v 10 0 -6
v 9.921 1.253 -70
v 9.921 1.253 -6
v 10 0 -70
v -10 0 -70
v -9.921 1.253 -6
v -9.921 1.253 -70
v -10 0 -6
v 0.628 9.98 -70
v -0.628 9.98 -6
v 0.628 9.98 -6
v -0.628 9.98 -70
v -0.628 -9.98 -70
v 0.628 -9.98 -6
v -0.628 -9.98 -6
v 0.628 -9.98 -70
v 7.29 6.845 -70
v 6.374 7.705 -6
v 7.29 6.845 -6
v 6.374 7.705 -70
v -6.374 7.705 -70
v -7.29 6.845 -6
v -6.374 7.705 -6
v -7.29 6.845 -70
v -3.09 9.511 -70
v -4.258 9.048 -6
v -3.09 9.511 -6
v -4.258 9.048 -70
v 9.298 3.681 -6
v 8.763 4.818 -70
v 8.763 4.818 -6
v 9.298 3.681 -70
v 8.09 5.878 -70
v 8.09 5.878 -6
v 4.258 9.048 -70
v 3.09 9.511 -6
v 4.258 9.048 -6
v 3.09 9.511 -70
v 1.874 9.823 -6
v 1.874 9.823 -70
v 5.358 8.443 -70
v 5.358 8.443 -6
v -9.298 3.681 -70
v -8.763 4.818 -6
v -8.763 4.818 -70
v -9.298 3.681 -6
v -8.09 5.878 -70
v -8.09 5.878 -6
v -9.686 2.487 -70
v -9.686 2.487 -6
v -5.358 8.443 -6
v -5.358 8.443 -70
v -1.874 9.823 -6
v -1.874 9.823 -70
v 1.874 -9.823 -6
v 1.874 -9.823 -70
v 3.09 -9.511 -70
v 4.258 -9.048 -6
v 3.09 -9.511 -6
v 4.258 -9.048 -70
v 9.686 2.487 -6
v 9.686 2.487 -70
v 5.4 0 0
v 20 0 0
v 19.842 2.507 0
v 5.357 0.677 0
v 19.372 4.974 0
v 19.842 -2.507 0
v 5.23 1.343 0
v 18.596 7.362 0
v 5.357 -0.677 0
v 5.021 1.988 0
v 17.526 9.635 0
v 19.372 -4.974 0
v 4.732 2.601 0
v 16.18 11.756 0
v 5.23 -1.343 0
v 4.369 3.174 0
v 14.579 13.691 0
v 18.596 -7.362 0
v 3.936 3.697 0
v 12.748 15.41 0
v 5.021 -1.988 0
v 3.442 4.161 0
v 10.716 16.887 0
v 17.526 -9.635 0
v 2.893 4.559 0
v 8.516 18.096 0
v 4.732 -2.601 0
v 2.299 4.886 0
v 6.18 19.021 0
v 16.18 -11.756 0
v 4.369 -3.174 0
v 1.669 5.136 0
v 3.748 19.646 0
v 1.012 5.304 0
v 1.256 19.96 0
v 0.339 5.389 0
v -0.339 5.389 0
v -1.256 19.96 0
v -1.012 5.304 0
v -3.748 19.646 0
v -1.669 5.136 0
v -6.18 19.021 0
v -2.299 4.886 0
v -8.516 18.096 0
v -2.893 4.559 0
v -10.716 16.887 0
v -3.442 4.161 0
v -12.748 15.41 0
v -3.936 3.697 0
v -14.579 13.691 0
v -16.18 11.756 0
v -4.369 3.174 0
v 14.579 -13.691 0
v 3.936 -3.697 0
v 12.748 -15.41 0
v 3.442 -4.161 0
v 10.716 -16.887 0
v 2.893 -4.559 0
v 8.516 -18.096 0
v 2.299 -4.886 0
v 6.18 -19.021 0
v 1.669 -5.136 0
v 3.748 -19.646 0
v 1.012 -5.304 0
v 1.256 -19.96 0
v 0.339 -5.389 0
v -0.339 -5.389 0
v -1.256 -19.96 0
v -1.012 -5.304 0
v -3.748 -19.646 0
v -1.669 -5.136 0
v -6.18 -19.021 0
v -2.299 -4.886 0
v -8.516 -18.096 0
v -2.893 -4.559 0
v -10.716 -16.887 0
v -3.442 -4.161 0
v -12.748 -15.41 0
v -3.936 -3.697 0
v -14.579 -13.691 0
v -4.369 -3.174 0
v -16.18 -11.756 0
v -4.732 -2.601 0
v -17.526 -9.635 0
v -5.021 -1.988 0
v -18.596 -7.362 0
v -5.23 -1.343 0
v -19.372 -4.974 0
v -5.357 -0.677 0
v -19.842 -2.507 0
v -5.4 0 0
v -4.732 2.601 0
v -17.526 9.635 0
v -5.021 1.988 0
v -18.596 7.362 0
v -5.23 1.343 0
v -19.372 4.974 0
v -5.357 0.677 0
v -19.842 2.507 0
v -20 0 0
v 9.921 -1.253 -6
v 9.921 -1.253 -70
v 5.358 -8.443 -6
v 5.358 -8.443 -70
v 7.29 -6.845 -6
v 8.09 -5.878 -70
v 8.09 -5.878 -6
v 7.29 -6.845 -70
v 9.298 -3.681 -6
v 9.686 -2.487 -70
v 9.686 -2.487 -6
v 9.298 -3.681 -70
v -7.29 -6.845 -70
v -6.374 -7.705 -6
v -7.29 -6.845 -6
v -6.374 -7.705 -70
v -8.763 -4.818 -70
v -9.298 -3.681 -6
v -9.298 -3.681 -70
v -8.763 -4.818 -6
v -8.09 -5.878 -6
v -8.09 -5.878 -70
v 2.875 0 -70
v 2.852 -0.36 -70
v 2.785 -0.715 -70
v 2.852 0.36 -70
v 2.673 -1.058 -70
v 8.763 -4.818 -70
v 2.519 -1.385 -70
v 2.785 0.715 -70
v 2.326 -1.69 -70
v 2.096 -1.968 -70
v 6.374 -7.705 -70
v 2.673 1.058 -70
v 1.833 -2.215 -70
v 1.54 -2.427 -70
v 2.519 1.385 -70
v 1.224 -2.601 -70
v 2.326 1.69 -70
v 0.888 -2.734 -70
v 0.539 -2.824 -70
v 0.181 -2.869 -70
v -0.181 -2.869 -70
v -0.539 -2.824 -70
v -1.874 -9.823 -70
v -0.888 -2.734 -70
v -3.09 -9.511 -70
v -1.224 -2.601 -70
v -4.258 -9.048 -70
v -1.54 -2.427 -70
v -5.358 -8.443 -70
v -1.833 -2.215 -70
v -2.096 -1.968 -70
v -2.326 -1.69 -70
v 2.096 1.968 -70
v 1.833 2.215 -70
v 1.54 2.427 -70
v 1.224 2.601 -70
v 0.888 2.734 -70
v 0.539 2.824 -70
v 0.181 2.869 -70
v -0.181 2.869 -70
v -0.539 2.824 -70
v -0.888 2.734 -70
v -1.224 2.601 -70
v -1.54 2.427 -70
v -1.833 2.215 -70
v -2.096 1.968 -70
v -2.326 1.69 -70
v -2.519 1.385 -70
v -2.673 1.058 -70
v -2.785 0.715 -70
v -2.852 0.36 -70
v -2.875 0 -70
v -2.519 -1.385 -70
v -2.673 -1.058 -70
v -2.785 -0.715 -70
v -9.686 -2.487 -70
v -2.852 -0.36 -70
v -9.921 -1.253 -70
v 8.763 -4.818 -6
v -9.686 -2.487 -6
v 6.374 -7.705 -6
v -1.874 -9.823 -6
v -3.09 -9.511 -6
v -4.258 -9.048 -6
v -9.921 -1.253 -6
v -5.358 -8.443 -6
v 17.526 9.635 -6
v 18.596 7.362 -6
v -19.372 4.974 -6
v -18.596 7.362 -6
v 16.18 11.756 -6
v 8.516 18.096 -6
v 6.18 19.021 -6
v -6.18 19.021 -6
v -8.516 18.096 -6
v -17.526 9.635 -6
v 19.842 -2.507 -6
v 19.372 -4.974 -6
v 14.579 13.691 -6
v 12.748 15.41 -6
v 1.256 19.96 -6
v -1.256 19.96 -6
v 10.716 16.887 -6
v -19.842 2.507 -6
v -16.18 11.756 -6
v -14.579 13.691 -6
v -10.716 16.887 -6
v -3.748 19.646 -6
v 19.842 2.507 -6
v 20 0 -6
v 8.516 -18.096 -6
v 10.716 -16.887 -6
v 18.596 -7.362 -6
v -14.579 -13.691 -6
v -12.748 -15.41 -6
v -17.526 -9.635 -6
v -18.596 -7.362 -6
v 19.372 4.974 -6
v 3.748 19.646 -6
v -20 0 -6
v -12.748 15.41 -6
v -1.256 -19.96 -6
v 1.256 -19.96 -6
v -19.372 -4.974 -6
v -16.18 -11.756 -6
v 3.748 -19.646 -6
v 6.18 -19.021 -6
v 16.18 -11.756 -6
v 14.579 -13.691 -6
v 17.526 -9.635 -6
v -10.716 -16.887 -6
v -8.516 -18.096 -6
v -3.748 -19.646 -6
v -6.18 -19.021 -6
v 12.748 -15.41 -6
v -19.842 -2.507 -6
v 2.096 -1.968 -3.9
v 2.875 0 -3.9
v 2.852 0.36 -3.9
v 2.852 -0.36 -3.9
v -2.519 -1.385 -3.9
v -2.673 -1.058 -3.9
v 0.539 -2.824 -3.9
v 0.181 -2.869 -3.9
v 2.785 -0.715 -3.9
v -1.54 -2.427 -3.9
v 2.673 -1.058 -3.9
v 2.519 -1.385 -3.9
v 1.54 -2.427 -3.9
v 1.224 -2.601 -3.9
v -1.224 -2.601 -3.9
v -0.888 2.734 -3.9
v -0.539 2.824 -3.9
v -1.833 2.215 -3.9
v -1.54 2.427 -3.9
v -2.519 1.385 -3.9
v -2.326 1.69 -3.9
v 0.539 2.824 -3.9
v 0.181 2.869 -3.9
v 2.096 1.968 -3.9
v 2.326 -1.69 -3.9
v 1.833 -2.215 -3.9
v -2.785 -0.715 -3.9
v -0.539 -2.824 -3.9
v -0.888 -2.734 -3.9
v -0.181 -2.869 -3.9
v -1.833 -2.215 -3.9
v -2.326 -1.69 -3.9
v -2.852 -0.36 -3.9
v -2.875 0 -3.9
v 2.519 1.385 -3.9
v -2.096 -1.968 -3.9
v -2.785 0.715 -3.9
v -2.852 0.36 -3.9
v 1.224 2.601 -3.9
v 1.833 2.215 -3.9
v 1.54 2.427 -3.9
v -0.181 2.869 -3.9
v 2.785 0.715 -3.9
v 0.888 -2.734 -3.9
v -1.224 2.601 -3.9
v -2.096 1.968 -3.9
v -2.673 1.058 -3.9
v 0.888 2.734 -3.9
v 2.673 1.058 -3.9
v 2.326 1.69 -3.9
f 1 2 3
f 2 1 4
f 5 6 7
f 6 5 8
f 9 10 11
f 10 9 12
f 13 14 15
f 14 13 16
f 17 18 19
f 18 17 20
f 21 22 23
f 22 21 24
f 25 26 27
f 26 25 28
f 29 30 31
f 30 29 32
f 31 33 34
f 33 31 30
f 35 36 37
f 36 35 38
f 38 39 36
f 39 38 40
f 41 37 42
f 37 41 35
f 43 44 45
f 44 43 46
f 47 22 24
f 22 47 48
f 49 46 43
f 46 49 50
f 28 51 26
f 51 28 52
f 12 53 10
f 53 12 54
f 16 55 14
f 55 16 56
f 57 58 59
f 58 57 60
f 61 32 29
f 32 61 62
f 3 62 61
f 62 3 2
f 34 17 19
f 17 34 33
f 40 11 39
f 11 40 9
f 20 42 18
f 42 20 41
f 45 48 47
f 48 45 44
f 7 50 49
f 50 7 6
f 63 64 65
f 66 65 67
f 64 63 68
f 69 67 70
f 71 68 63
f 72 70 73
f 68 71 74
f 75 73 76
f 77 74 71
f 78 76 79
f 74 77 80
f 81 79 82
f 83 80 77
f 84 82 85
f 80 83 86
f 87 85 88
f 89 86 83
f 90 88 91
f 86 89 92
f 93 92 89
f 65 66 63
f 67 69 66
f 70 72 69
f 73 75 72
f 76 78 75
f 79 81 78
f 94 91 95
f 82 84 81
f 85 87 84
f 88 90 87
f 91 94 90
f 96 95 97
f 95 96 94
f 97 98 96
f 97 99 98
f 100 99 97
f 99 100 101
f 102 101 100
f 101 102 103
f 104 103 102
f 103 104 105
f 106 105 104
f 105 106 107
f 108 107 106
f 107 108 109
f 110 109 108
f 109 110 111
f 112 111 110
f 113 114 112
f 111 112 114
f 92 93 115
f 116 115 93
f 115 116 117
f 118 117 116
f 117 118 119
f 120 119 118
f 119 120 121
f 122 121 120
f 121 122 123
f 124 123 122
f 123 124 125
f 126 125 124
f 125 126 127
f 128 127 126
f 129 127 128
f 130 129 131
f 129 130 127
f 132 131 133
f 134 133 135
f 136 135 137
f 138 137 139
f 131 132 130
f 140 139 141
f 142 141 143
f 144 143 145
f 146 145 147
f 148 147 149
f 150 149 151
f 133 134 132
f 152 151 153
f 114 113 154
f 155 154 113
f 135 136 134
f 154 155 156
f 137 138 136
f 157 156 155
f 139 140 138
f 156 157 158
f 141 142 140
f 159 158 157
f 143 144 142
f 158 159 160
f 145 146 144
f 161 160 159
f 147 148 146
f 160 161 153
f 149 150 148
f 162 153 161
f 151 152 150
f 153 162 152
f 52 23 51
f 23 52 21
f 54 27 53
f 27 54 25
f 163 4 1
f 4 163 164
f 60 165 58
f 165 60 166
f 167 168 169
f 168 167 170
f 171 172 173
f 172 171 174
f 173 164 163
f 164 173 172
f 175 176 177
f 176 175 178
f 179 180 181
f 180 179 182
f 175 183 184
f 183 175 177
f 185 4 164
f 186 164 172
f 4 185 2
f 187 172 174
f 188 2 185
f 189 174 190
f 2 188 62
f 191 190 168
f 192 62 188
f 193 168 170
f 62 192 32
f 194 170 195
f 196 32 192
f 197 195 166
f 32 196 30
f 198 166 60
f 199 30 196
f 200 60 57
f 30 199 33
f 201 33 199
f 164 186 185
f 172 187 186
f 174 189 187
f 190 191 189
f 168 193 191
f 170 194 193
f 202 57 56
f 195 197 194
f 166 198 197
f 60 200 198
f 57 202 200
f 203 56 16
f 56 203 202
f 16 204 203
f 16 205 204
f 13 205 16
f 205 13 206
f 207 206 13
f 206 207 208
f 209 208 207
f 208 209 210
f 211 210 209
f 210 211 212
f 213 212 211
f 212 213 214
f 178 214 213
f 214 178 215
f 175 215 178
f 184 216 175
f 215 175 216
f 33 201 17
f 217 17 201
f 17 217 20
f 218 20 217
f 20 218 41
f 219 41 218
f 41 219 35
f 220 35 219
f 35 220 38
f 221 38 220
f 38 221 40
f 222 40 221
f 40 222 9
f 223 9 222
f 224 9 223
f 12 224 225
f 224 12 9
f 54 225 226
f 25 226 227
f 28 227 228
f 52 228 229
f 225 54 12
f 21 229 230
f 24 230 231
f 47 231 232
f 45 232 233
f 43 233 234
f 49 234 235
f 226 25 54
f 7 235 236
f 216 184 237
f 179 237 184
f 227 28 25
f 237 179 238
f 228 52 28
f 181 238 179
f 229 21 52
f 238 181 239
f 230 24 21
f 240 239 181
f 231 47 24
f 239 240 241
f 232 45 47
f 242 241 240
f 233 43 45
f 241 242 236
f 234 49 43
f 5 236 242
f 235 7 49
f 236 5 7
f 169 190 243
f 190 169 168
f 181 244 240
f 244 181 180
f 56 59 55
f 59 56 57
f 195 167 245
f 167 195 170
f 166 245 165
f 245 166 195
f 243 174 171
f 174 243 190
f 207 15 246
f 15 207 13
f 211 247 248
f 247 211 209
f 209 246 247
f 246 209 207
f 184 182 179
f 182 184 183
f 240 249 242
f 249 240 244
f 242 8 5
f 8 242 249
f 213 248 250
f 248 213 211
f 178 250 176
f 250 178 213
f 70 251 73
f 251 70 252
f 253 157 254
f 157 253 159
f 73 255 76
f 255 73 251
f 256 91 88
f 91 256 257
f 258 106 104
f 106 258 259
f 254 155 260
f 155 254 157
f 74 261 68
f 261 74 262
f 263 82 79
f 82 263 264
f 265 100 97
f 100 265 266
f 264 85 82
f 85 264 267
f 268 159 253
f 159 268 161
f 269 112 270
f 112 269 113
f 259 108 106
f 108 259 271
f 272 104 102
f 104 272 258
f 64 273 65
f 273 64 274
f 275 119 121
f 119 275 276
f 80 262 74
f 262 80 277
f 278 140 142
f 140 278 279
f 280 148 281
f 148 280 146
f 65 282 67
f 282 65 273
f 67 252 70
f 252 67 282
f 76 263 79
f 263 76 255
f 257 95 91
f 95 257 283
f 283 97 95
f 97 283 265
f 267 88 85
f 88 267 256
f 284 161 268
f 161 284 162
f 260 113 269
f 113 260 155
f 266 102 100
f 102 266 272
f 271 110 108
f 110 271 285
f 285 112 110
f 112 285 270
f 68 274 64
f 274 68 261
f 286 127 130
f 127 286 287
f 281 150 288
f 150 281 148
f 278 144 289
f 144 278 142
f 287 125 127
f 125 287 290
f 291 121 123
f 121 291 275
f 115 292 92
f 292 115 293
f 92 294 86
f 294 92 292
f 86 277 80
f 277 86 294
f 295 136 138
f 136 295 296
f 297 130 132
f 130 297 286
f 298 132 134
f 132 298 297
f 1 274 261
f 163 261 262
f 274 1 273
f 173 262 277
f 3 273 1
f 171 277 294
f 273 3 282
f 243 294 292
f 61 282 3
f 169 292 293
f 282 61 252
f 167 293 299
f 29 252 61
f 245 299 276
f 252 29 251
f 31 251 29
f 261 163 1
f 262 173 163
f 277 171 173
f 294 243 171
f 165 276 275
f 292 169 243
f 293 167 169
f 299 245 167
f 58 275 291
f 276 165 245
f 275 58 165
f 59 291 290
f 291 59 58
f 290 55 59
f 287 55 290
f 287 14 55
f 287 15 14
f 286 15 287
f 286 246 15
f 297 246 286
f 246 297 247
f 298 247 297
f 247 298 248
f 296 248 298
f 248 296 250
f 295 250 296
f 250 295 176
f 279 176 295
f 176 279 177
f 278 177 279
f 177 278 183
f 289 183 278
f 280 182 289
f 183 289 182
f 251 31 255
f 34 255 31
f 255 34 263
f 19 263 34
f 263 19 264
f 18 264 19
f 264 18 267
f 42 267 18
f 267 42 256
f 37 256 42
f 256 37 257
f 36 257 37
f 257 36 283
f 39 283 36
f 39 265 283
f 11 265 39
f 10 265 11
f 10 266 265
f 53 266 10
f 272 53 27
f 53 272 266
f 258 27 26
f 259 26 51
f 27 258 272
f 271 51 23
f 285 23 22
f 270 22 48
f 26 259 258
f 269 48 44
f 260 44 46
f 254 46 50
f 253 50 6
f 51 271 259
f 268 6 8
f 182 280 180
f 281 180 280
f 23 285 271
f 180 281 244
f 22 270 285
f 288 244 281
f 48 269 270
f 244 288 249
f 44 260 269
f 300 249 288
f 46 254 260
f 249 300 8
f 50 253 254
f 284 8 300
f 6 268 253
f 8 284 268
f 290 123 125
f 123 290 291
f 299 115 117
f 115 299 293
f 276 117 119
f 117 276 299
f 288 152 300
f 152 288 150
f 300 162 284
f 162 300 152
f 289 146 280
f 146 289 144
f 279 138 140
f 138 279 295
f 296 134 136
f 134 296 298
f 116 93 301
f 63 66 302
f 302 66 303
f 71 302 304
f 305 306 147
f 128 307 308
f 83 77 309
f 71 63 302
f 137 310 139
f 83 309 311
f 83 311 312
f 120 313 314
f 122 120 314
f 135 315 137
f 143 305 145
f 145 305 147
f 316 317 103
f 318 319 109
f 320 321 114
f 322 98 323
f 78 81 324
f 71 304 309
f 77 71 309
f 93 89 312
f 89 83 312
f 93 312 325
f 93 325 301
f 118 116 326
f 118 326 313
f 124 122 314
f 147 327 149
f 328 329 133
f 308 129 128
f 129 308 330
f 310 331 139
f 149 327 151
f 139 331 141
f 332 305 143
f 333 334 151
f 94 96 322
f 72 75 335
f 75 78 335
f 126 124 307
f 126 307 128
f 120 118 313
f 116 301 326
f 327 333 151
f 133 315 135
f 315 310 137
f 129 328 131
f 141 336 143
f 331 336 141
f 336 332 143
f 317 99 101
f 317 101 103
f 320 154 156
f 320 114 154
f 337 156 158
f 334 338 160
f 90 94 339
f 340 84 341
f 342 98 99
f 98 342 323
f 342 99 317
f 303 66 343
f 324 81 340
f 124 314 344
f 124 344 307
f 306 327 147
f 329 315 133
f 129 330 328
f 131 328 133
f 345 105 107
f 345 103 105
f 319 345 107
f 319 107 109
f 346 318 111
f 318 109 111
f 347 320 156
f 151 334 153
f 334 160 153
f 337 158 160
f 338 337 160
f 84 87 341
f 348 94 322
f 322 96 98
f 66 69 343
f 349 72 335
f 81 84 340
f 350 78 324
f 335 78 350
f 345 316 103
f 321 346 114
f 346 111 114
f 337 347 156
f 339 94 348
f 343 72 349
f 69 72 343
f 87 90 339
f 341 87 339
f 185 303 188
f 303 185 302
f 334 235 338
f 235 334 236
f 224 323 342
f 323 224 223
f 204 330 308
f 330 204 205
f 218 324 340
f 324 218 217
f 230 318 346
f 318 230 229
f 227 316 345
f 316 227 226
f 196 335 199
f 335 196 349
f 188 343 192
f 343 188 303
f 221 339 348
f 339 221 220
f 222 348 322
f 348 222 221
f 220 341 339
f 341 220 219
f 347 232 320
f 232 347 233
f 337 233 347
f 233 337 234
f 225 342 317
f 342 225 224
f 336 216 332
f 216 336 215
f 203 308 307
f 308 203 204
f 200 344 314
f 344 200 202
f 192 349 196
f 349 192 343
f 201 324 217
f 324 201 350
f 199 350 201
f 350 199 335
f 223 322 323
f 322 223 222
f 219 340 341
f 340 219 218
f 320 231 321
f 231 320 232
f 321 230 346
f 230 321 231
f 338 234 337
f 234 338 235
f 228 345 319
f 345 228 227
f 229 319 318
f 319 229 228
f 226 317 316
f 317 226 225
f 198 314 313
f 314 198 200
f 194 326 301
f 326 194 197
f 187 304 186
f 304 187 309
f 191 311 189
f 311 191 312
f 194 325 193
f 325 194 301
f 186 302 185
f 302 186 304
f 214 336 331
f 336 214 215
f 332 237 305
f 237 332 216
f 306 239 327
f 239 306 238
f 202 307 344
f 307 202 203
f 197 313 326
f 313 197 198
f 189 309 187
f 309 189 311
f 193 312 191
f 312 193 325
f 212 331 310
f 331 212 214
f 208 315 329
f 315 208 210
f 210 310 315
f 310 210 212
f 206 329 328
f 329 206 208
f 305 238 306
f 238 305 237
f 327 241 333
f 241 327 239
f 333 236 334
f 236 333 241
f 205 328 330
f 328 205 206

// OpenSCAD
$fn = 50;


difference() {
	union() {
		translate(v = [0, 0, -70.0000000000]) {
			cylinder(h = 70, r = 10.0000000000);
		}
		translate(v = [0, 0, -6.0000000000]) {
			cylinder(h = 6, r = 20.0000000000);
		}
	}
	union() {
		translate(v = [0, 0, 0]) {
			rotate(a = [0, 0, 0]) {
				difference() {
					union() {
						#translate(v = [0, 0, -70.0000000000]) {
							cylinder(h = 70, r = 2.6000000000);
						}
						#translate(v = [0, 0, -3.9000000000]) {
							cylinder(h = 3.9000000000, r1 = 2.8750000000, r2 = 5.4000000000);
						}
						#translate(v = [0, 0, -70.0000000000]) {
							cylinder(h = 70, r = 2.8750000000);
						}
						#translate(v = [0, 0, -70.0000000000]) {
							cylinder(h = 70, r = 2.6000000000);
						}
					}
					union();
				}
			}
		}
	}
}
